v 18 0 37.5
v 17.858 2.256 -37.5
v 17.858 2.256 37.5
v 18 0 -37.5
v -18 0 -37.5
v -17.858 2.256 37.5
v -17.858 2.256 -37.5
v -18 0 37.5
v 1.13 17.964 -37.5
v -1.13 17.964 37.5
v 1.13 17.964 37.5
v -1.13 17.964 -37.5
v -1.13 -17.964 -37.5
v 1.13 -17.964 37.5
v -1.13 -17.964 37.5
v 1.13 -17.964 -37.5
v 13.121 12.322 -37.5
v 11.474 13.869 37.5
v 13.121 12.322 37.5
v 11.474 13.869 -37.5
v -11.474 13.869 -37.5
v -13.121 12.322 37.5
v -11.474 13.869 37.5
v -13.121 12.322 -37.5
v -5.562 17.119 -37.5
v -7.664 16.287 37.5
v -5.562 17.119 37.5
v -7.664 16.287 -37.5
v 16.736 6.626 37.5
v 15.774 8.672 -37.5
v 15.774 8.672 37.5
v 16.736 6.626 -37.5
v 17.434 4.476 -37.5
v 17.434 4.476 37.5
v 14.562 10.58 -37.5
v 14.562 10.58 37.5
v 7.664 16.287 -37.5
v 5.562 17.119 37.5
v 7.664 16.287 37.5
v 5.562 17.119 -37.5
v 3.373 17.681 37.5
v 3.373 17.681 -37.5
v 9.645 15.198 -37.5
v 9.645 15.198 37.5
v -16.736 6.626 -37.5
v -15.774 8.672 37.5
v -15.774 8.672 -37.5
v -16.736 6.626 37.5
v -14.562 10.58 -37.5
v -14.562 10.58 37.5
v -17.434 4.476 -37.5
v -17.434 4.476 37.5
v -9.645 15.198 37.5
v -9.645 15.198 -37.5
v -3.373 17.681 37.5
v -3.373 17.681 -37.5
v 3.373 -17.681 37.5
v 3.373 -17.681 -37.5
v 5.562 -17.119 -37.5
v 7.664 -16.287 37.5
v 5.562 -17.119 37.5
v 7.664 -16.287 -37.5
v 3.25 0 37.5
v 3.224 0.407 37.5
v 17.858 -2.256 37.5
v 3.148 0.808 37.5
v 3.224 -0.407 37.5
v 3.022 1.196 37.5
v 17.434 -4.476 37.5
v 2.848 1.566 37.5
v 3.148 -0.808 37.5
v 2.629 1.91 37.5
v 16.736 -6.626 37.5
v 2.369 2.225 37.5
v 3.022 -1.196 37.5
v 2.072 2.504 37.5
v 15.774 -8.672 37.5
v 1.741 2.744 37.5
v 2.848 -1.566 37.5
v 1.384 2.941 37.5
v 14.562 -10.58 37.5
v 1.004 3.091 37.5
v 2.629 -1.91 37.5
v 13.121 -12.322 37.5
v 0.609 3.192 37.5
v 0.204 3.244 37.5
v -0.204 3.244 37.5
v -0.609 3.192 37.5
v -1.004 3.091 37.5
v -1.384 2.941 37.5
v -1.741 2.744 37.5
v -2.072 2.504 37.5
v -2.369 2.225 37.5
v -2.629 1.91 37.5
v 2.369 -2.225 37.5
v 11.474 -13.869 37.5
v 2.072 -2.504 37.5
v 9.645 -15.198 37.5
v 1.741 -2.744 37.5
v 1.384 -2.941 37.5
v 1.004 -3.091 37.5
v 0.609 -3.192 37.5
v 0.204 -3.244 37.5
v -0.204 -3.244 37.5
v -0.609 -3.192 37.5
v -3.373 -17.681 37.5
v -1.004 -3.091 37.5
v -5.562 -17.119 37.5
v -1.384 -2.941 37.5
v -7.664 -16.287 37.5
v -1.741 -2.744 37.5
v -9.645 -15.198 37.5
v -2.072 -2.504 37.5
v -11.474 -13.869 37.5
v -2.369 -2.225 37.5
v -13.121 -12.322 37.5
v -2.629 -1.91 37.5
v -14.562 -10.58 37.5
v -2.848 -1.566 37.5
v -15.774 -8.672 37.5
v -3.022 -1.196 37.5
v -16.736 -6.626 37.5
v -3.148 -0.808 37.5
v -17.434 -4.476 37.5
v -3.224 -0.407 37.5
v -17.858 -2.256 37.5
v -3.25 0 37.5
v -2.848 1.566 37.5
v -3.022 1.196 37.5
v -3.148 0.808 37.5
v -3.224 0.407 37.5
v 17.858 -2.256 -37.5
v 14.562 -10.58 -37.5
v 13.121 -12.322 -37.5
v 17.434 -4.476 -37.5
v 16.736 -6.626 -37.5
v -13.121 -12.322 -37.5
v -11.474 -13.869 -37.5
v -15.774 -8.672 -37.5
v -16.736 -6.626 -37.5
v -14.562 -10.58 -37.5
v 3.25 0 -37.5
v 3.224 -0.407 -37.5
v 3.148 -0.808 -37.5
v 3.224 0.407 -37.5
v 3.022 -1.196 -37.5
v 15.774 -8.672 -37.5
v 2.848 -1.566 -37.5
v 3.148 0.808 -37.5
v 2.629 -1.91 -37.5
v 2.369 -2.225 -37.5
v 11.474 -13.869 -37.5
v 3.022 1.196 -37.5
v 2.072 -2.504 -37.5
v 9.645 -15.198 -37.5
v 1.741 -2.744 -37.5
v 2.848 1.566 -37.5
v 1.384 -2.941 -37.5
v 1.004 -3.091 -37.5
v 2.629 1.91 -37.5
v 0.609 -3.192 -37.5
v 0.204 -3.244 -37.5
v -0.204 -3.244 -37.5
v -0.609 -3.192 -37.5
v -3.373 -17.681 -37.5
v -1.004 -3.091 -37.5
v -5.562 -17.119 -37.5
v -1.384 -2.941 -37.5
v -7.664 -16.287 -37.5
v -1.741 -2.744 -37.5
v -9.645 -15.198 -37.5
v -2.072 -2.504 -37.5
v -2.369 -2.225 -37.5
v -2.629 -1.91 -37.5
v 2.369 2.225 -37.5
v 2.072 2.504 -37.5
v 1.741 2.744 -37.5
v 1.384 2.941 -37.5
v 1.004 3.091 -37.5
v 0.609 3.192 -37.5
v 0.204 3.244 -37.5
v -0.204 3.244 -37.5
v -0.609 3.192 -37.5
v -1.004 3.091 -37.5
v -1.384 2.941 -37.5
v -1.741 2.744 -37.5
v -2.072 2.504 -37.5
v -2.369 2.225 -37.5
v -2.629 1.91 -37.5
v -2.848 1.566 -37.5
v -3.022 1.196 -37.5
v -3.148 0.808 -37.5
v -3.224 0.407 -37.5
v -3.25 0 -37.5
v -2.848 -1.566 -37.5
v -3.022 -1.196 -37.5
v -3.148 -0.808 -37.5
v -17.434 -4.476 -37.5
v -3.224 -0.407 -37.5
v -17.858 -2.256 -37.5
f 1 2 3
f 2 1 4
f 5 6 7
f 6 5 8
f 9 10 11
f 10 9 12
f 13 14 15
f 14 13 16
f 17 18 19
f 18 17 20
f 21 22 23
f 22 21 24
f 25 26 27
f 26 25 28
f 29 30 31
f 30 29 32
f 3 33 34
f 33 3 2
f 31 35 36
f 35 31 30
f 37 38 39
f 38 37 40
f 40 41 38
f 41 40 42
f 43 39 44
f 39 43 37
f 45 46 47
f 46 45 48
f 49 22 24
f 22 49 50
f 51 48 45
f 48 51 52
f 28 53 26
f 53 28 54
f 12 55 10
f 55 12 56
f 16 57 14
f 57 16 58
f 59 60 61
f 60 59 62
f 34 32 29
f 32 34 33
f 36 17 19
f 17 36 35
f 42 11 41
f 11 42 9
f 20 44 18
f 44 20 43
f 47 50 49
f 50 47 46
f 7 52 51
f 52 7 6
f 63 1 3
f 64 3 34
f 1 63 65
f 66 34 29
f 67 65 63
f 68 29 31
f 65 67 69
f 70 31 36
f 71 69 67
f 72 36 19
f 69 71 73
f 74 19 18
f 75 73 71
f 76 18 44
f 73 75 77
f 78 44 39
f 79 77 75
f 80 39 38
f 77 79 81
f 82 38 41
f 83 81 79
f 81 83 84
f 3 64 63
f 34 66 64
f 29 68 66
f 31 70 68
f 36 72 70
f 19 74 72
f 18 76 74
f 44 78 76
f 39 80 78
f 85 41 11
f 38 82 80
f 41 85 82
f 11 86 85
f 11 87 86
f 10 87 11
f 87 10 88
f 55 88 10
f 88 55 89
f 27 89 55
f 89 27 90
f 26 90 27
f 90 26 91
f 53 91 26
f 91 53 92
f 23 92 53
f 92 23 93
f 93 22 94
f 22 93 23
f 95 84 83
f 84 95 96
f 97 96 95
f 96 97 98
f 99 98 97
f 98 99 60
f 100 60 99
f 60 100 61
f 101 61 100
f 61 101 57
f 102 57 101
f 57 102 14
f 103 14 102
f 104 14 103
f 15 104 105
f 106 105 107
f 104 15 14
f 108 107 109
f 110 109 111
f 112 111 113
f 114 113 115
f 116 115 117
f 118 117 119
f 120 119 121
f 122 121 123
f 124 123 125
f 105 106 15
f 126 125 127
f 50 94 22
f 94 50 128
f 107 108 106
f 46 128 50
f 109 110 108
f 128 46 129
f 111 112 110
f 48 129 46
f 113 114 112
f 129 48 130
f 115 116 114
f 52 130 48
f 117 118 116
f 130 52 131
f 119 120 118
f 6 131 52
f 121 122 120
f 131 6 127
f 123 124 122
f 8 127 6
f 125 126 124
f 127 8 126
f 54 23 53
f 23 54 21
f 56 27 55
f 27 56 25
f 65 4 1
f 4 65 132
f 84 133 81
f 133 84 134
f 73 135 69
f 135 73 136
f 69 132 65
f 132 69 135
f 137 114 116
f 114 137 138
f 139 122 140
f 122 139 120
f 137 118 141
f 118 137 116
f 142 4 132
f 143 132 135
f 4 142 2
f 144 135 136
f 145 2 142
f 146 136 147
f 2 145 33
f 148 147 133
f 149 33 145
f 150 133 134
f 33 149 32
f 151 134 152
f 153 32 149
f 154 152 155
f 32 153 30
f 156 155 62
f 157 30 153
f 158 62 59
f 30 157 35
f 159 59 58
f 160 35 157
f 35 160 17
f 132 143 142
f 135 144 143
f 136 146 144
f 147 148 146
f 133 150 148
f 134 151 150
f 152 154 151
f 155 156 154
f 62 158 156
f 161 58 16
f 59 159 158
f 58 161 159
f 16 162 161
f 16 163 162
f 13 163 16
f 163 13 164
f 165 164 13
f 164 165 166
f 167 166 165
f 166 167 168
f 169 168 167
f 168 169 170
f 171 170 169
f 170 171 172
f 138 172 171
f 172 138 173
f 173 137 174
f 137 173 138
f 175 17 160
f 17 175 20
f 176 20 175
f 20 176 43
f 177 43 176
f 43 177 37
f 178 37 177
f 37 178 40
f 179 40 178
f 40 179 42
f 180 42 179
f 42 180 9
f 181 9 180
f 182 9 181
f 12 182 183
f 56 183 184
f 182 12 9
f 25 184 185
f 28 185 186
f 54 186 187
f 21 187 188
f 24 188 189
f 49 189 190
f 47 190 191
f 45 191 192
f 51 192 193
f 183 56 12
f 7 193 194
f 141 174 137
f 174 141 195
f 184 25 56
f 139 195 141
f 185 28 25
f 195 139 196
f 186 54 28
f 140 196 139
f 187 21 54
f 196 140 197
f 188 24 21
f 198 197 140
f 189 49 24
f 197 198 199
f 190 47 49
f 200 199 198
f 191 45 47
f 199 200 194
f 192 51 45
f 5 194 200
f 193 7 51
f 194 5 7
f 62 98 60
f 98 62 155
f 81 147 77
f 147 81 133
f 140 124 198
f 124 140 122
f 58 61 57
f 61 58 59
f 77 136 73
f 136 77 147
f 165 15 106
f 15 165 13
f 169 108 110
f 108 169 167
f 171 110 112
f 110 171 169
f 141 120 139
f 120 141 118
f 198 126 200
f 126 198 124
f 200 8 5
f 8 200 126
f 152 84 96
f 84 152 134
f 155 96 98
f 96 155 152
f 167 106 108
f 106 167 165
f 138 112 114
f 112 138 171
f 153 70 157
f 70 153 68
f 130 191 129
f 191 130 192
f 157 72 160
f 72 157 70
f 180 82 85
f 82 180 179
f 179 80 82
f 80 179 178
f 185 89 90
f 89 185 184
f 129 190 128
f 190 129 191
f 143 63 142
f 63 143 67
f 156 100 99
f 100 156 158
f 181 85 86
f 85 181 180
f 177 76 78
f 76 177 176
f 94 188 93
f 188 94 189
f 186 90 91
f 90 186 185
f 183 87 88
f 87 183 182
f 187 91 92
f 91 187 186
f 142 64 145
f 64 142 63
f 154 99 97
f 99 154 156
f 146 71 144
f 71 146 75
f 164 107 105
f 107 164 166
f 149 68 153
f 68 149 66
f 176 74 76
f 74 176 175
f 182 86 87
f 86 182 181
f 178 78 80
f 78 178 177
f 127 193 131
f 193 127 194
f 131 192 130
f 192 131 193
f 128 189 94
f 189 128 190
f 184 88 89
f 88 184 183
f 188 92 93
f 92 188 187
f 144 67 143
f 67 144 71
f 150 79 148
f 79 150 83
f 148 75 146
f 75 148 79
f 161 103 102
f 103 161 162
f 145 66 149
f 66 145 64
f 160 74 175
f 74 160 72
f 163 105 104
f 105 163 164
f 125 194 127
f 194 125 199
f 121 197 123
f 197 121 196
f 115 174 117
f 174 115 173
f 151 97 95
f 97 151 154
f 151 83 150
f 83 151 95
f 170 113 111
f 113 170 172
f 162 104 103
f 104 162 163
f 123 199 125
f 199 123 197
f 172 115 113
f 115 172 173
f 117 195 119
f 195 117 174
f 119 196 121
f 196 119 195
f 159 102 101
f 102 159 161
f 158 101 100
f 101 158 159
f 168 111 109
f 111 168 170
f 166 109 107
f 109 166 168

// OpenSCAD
$fn = 50;


difference() {
	union() {
		translate(v = [0, 0, -37.5000000000]) {
			cylinder(h = 75, r = 18.0000000000);
		}
	}
	union() {
		translate(v = [0, 0, -100.0000000000]) {
			cylinder(h = 200, r = 3.2500000000);
		}
	}
}
